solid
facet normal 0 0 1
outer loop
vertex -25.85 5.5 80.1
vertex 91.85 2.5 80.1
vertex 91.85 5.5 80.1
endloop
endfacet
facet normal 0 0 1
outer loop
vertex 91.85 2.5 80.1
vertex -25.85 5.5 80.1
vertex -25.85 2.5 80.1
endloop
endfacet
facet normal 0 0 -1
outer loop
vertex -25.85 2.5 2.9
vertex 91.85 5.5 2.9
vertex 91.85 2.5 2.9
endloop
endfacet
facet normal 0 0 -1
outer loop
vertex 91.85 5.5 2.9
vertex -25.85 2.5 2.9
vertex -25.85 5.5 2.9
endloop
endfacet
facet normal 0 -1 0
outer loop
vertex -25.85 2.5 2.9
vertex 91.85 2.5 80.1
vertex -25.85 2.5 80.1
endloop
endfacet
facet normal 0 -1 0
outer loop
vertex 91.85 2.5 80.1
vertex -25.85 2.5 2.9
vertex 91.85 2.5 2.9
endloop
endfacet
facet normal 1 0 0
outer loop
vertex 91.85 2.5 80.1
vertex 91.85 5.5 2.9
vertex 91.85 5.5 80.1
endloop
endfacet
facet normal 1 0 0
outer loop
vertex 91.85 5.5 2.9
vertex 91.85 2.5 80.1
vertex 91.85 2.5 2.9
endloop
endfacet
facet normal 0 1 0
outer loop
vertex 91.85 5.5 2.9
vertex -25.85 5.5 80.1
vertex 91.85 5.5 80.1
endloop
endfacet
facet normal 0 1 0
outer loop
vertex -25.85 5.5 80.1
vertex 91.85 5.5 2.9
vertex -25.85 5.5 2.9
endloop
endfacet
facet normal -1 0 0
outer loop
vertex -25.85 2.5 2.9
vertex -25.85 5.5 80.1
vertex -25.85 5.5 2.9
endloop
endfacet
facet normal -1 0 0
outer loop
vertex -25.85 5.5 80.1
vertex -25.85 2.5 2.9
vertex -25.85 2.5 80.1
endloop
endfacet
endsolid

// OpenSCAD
// file: D:/Projects/assembly-workshop/outputs/Screen_5in_SCR5-G_2026-10-30/checks/geometry.scad
// SCR5-G; mm; FRONT view: X right, Z up, Y into rack. Glass/plate front Y=0.
// Measured values: work/screen-5in/Dimensions.md. Physical fit/strength UNKNOWN.
part="plate";
DROP=0.45; // coupon winner can be substituted here; all three pins use this DROP
LIP=0.8; LIP_ON=true;
LIP_EDGES=[true,true,false,false]; // left,right,bottom,top; Brian: side lips only, cosmetic
FRAME_STEP=1.5; // measured glass-edge inset to metal LCD frame, left/right only
SHIM=0; // moves rear frame seat and plate-boss mating face back
$fn=48;
GCX=33; GCZ=41.5; PW=252; PH=88.8; PT=4;
GW=120.7; GH=77.2; CLEAR=0.2; WW=GW+2*CLEAR; WH=GH+2*CLEAR;
SEAT=13.3+SHIM; FT=3;
SO=[56.45,34]; BTN_X=[45.5,35.5,25.5];
PCB_TOP=38; GAP=0.10; LEAF_T=0.8;
HOLE=[3.4,40.3,44.7];
BX=[GCX-68,GCX+68]; BZ=[10,72];
// DSI connector X extent is unmeasured: conservative assumed 8 mm inward from PCB edge.
DSI=[GCX-60.5,9.1,GCZ-38+30,8,5.25,21];
module xz(y,d){translate([0,y+d,0])rotate([90,0,0])linear_extrude(d)children();}
// rr/rack_slots copied from SCR5-F; same exact slot centres, outline shifted -0.05 Z to centre 44.4.
module rr(w,h,r){hull()for(x=[-w/2+r,w/2-r],z=[-h/2+r,h/2-r])translate([x,z])circle(r=r);}
module rack_slots(){for(x=[-118.2625,118.2625],z=[6.323,38.127,50.773,82.577])translate([x,z])hull()for(dx=[-1.5,1.5])translate([dx,0])circle(d=7);}
module cyl_y(x,y,z,d,h){translate([x,y,z])rotate([-90,0,0])cylinder(d=d,h=h);}
module window_cut(){
  xz(-0.02,4.04)translate([GCX,GCZ])square([WW,WH],center=true);
  // 0.3 x 45-degree chamfer, square corners, front only.
  translate([GCX,0.3,GCZ])rotate([90,0,0])
    linear_extrude(height=0.3,scale=[(WW+0.6)/WW,(WH+0.6)/WH])square([WW,WH],center=true);
}
module lips(){
  // Cosmetic side ledges only; rear frame/standoffs set depth and retain the screen.
  if(LIP_ON)for(i=[0:3])if(LIP_EDGES[i]){
    if(i<2)translate([GCX+(i==0?-WW/2:WW/2-LIP),2.5,GCZ-GH/2+4])cube([LIP,0.8,GH-8]);
    else translate([GCX-GW/2+4,2.5,GCZ+(i==2?-WH/2:WH/2-LIP)])cube([GW-8,0.8,LIP]);
  }
}
// Leaf/nub/bump geometry copied from SCR5-WP-A, translated to this glass centre.
module leaves(){for(x=BTN_X)translate([GCX+x-1.5,0,GCZ]){
  translate([0,0,PCB_TOP+GAP+0.9+0.1])cube([3,11.8,LEAF_T]);
  translate([0,10.2,PCB_TOP+GAP])cube([3,1.4,1.0+LEAF_T/2]);
  translate([0,10.4,PCB_TOP+GAP+1.0+LEAF_T])cube([3,1.0,0.9]);
}}
module plate(){difference(){union(){
  difference(){xz(0,PT)translate([0,PH/2])rr(PW,PH,2.5);window_cut();}
  for(x=BX,z=BZ)cyl_y(x,3.9,z,8,SEAT-3.9);
  leaves(); lips();
 }
 xz(-0.02,4.04)rack_slots();
 for(x=BTN_X)translate([GCX+x-HOLE[0]/2,-0.02,GCZ+HOLE[1]])cube([HOLE[0],SEAT+FT+0.04,HOLE[2]-HOLE[1]]);
 // Printed-in screw pilots (no heat-set OD assumption): nominal M2.5, fit UNKNOWN.
 for(x=BX,z=BZ)cyl_y(x,SEAT-6,z,2.1,6.02);
 // Rear engraving, 0.5 deep, left field.
 xz(3.5,0.52)translate([-75,40])mirror([1,0])text("SCR5-G",size=6,halign="center",font="Liberation Sans:style=Bold");
}}
module frame_blank(){
  // C-shaped perimeter; no material across the board centre / touch FPC.
  xz(SEAT,FT)translate([GCX,GCZ])difference(){square([132,76],center=true);square([116,60],center=true);}
  for(sx=[-1,1],sz=[-1,1])cyl_y(GCX+sx*SO[0],SEAT,GCZ+sz*SO[1],9,FT);
  for(x=BX,z=BZ)hull(){cyl_y(x,SEAT,z,8,FT);cyl_y(GCX+(x<GCX?-62:62),SEAT,z,8,FT);}
}
module dsi_keepout(){translate([DSI[0]-3,DSI[1]-3,DSI[2]-3])cube([DSI[3]+6,DSI[4]+6,DSI[5]+6]);}
module ribbon_route(){
  // Open left/up corridor 18 mm wide; extends past top of plate.
  translate([GCX-84,6.1,GCZ-11])cube([18,24,65]);
  translate([GCX-84,6.1,GCZ-11])cube([32,24,27]);
}
module frame(){difference(){frame_blank();dsi_keepout();ribbon_route();
 for(sx=[-1,1],sz=[-1,1])cyl_y(GCX+sx*SO[0],SEAT-0.02,GCZ+sz*SO[1],2.8,FT+0.04);
 for(x=BX,z=BZ)cyl_y(x,SEAT-0.02,z,2.8,FT+0.04);
}}
// Pin polygon/cap/notch/dot design copied unchanged from SCR5-WP-A.
module pin(d,dots){s=2*d+0.5;difference(){union(){
 translate([-1.5,0,0])rotate([90,0,90])linear_extrude(3)polygon([
 [-s-0.02,40.5],[10.2,40.5],[10.2,41.0],[11.5,41.0],[11.5+2*d,41.0-d],[15,41.0-d],[15,44.5],[-s-0.02,44.5]]);
 translate([-2.5,-s-1.5,39.6])cube([5,1.5,5.8]);
 }for(i=[0:dots-1])translate([(i-(dots-1)/2)*1.4,-s-1.5-0.01,43.5])rotate([-90,0,0])cylinder(d=0.9,h=0.4);}}
module placed_pin(i){translate([GCX+BTN_X[i],0,GCZ])pin(DROP,i+1);}
// Measured layers: cover glass 0.9 + second glass 1.6, metal frame 3.0,
// open gap 2.0, PCB 1.6. Metal frame inset ~1.5 at LEFT/RIGHT only.
// PCB centred under glass and full metal-frame top/bottom extent remain UNKNOWN.
module glass(){translate([GCX-GW/2,0,GCZ-GH/2])cube([GW,2.5,GH]);}
module lcd(){
  translate([GCX-GW/2+FRAME_STEP,2.5,GCZ-GH/2])cube([GW-2*FRAME_STEP,3.0,GH]);
}
module pcb(){translate([GCX-60.5,7.5,GCZ-38])cube([121,1.6,76]);}
module standoffs(){for(sx=[-1,1],sz=[-1,1])difference(){cyl_y(GCX+sx*SO[0],9.1,GCZ+sz*SO[1],5.5,4.2);cyl_y(GCX+sx*SO[0],9.08,GCZ+sz*SO[1],2.5,4.24);}}
module buttons(){for(x=BTN_X){
 translate([GCX+x-3.5,9.1,GCZ+38-3.4])cube([7,3.6,2.4]);
 translate([GCX+x-1.5,9.1,GCZ+37])cube([3,3.6,1]);
}}
module dsi(){translate([DSI[0],DSI[1],DSI[2]])cube([DSI[3],DSI[4],DSI[5]]);}
module touch(){translate([GCX-10,9.1,GCZ-5])cube([20,2,10]);} // lateral extent unmeasured
module dummy(){glass();lcd();pcb();standoffs();buttons();dsi();touch();}
module assembly(){color("gray")plate();color("orange")frame();for(i=[0:2])color("cyan")placed_pin(i);color([0.2,0.3,0.4,0.4])dummy();}
// main file
include <D:/Projects/assembly-workshop/outputs/Screen_5in_SCR5-G_2026-10-30/checks/geometry.scad>
lcd();
